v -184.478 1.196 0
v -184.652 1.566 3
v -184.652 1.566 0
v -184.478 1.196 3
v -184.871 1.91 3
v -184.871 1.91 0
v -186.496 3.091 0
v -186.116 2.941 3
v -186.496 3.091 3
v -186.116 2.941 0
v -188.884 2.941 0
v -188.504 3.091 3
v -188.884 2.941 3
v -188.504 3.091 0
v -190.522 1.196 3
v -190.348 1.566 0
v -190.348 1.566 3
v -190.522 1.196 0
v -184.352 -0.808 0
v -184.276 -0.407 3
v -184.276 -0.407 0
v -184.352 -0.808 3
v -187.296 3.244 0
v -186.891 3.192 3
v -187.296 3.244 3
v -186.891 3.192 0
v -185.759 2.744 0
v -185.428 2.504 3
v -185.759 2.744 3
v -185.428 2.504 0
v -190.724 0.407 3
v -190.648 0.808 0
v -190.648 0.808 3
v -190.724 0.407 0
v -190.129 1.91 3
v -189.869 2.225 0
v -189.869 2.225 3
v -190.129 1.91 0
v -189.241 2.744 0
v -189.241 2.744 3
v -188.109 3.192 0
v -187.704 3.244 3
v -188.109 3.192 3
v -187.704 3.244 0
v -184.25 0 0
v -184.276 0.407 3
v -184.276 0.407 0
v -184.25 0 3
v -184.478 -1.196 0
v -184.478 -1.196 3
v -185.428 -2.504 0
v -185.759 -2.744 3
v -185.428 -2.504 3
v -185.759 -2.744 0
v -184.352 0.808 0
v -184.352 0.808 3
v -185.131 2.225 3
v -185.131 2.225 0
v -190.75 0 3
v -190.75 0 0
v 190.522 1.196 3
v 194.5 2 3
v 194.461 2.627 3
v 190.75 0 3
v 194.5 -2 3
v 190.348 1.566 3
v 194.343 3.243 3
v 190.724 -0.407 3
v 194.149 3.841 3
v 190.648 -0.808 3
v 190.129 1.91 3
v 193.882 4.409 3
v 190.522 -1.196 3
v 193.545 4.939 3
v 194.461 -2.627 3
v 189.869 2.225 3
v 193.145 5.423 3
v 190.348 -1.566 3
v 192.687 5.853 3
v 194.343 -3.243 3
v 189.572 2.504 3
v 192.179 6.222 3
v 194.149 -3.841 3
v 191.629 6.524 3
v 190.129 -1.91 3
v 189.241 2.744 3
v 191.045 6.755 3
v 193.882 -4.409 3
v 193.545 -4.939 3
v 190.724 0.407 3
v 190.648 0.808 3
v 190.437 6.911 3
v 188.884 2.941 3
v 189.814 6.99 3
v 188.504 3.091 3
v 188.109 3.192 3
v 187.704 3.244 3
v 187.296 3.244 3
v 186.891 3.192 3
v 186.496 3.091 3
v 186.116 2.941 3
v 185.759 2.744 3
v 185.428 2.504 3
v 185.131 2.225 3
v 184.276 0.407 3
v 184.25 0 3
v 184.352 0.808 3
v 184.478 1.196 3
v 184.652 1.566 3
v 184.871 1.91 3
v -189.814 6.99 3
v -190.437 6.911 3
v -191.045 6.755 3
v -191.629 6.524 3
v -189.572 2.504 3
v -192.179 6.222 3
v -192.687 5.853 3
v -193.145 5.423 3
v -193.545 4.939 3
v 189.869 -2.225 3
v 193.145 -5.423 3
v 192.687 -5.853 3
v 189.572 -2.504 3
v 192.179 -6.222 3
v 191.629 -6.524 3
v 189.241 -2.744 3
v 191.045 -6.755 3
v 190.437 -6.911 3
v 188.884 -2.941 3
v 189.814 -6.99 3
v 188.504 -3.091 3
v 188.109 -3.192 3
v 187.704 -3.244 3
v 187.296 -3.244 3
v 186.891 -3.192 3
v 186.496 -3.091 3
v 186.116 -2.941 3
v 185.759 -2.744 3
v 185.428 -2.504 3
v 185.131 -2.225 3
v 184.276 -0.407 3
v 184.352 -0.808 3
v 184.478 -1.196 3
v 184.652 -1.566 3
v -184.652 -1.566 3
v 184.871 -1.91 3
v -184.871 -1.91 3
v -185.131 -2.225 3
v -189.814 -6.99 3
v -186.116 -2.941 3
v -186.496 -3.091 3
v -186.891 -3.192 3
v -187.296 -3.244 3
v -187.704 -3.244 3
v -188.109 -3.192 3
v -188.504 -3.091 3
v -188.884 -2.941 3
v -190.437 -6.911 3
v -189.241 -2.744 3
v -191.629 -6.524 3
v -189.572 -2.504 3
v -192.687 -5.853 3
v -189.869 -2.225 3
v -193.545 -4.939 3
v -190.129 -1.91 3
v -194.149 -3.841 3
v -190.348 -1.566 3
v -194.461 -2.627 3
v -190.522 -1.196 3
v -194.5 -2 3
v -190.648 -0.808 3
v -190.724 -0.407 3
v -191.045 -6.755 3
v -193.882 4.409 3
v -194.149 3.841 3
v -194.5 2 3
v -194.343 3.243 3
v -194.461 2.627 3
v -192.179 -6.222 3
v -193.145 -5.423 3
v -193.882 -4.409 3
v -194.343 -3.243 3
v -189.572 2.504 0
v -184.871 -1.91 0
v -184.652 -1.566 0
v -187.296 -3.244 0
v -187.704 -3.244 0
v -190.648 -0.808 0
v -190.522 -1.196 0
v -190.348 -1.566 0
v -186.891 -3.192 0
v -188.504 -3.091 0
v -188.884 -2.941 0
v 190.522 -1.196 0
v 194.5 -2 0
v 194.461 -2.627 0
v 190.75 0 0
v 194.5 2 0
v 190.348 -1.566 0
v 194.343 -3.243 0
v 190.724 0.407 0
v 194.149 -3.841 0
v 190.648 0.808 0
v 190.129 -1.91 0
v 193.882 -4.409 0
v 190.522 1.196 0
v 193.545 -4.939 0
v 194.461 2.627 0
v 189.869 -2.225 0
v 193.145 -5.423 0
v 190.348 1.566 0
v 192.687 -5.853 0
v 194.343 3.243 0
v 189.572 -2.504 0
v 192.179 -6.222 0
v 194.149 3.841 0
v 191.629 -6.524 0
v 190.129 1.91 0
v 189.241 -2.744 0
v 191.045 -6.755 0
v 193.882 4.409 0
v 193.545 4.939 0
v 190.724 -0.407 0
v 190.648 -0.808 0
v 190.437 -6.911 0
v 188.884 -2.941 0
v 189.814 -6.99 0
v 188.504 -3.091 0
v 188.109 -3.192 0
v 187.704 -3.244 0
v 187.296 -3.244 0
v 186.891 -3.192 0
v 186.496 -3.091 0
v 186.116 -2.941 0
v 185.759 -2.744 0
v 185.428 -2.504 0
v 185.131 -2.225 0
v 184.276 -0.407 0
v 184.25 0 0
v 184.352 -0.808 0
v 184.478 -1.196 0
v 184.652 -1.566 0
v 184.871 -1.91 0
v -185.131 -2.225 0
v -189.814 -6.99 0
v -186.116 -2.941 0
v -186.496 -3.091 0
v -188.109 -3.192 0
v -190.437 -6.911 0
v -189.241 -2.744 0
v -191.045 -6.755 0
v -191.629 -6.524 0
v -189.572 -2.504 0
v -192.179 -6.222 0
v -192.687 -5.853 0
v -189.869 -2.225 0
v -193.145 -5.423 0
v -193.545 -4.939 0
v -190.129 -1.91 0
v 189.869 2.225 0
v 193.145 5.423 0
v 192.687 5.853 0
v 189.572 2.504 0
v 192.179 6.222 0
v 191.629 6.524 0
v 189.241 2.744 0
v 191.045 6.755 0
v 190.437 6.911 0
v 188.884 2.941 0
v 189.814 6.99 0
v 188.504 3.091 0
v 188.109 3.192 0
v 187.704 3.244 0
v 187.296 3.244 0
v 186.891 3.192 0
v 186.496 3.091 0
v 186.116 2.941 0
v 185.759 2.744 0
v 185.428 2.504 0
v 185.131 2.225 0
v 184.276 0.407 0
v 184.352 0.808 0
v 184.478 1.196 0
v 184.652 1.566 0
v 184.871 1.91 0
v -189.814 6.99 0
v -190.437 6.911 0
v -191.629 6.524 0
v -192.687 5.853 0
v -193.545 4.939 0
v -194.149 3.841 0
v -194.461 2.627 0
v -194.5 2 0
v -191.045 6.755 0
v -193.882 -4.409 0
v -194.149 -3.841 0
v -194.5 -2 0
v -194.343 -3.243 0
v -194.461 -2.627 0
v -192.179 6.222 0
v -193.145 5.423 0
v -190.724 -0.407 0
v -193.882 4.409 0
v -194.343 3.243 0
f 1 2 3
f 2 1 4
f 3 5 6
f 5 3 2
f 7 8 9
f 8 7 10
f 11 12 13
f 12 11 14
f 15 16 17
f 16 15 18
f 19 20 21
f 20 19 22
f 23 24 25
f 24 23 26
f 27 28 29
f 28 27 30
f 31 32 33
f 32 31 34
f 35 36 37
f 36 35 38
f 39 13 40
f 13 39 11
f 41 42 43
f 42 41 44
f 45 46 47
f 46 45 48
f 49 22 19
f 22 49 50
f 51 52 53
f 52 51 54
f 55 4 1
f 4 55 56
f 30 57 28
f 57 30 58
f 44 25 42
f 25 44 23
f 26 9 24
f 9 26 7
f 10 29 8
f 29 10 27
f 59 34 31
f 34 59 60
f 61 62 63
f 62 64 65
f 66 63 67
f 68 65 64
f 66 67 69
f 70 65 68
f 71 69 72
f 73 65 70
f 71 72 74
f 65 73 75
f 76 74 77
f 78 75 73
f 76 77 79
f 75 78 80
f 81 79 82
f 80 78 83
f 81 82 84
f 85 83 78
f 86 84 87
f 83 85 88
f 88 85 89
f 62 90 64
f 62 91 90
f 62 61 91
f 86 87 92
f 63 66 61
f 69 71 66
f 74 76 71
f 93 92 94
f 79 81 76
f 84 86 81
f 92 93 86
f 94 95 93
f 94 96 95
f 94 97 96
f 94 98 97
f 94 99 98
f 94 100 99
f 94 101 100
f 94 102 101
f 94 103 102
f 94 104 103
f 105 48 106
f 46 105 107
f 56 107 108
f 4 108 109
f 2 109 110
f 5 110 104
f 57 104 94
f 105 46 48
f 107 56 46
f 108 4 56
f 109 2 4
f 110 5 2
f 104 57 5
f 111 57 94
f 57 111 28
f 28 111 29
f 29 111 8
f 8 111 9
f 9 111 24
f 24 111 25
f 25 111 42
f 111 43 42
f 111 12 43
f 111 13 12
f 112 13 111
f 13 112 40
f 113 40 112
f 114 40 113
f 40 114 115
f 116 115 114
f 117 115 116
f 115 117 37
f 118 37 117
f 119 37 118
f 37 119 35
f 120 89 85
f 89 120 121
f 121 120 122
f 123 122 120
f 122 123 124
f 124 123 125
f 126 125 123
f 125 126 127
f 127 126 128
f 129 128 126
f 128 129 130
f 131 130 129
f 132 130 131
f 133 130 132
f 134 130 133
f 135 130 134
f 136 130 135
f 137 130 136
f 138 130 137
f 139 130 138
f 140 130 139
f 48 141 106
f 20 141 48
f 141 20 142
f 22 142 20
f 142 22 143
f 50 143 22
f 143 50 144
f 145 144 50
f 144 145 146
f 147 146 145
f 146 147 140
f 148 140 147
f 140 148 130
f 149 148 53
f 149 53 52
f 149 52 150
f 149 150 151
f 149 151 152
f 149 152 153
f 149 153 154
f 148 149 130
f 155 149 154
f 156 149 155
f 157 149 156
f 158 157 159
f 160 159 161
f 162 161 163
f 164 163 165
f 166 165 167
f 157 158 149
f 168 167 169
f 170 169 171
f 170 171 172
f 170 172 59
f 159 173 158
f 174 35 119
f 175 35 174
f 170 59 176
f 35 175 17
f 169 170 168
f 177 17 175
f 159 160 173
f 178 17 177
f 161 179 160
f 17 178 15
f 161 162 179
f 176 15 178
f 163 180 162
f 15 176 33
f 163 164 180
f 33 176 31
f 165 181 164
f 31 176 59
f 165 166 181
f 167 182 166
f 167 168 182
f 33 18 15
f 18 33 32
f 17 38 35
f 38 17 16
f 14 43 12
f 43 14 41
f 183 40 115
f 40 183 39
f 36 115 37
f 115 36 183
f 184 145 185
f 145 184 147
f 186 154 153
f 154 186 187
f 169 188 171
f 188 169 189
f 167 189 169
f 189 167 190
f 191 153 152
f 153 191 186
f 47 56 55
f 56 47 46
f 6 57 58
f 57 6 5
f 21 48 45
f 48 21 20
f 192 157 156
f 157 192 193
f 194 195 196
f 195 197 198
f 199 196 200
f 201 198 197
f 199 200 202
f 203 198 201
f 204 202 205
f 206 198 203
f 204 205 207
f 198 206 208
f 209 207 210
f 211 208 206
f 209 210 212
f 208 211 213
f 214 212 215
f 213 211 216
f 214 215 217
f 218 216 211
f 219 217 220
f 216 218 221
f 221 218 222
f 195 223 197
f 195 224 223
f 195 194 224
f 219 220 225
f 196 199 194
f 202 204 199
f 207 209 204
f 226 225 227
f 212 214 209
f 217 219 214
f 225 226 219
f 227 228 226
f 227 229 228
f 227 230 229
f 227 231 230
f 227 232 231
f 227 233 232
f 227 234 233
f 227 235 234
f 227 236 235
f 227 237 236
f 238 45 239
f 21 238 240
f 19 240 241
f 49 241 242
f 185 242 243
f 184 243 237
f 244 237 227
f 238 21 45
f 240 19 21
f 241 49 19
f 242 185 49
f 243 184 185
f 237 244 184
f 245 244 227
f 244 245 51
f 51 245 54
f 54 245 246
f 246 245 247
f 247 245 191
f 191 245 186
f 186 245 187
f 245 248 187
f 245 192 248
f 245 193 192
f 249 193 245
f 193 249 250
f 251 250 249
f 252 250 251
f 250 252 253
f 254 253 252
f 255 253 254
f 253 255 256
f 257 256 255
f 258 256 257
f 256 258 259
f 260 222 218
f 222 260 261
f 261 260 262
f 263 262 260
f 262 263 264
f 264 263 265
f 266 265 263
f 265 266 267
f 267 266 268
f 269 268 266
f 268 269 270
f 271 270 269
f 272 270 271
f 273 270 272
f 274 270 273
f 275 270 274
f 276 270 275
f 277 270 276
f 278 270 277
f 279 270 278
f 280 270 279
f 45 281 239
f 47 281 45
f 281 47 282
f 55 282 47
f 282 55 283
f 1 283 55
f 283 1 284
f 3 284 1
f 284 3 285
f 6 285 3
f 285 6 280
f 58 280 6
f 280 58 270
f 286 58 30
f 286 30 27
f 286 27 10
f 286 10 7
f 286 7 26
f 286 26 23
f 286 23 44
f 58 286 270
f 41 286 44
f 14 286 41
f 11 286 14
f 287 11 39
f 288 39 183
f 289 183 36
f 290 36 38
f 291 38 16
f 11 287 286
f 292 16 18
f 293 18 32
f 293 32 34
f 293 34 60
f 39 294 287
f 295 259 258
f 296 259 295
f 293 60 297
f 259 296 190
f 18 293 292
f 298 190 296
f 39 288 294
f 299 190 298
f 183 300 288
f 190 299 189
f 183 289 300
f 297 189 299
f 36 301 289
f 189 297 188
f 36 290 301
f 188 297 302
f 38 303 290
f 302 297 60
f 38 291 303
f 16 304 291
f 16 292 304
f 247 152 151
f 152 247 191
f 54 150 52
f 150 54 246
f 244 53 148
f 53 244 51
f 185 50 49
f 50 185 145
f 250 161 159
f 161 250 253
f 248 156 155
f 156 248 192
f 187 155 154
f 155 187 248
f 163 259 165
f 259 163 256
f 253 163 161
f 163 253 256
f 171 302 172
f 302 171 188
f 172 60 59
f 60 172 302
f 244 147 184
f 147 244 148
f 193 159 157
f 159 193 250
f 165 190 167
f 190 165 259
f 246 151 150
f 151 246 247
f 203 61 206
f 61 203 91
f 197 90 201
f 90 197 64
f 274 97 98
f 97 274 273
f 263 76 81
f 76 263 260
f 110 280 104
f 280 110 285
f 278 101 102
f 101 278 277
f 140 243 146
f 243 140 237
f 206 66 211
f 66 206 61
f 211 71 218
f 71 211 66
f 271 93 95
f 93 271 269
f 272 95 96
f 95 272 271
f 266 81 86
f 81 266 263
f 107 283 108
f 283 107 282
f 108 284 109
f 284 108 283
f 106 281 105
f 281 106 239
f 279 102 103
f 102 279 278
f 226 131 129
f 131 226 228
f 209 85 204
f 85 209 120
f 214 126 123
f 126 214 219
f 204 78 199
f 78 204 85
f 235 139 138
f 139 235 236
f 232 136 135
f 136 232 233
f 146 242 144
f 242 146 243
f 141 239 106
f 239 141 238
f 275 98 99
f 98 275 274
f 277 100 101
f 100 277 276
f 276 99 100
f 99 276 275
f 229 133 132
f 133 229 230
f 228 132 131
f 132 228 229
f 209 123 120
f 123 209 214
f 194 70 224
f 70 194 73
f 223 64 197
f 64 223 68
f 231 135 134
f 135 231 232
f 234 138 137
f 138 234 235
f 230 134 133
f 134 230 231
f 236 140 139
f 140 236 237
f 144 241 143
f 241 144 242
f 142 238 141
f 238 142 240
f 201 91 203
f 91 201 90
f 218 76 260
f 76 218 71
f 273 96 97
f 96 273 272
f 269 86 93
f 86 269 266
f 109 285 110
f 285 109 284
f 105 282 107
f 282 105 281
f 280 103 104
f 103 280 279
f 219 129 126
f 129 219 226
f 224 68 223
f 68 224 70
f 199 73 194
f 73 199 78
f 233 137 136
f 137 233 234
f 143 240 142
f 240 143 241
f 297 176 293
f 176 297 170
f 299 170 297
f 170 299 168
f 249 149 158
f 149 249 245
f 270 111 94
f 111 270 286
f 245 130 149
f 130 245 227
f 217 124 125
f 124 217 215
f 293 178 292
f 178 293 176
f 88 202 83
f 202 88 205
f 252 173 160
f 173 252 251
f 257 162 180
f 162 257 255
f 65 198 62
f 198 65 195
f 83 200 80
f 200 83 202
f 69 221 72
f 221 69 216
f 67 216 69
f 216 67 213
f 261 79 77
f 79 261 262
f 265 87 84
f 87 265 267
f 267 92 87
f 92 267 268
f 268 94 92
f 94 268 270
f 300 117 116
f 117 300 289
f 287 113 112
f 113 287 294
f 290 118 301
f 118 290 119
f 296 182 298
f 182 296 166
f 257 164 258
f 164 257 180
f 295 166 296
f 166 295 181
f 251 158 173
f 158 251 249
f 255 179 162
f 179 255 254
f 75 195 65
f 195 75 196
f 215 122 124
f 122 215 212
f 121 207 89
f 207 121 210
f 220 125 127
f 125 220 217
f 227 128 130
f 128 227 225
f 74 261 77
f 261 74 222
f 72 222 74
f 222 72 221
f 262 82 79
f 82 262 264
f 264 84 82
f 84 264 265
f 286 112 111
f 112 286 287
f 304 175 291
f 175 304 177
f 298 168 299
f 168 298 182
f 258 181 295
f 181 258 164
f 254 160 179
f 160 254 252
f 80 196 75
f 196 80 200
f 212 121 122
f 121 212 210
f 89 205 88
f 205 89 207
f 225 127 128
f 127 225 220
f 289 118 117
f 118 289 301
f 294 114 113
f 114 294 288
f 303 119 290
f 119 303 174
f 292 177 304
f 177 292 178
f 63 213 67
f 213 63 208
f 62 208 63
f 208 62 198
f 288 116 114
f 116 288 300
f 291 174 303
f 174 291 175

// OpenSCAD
$fn = 50;


difference() {
	union() {
		hull() {
			translate(v = [-189.5000000000, 2.0000000000, 0]) {
				cylinder(h = 3, r = 5);
			}
			translate(v = [189.5000000000, 2.0000000000, 0]) {
				cylinder(h = 3, r = 5);
			}
			translate(v = [-189.5000000000, -2.0000000000, 0]) {
				cylinder(h = 3, r = 5);
			}
			translate(v = [189.5000000000, -2.0000000000, 0]) {
				cylinder(h = 3, r = 5);
			}
		}
	}
	union() {
		translate(v = [-187.5000000000, 0.0000000000, -100.0000000000]) {
			cylinder(h = 200, r = 3.2500000000);
		}
		translate(v = [-187.5000000000, 0.0000000000, -100.0000000000]) {
			cylinder(h = 200, r = 3.2500000000);
		}
		translate(v = [187.5000000000, 0.0000000000, -100.0000000000]) {
			cylinder(h = 200, r = 3.2500000000);
		}
		translate(v = [187.5000000000, 0.0000000000, -100.0000000000]) {
			cylinder(h = 200, r = 3.2500000000);
		}
	}
}
